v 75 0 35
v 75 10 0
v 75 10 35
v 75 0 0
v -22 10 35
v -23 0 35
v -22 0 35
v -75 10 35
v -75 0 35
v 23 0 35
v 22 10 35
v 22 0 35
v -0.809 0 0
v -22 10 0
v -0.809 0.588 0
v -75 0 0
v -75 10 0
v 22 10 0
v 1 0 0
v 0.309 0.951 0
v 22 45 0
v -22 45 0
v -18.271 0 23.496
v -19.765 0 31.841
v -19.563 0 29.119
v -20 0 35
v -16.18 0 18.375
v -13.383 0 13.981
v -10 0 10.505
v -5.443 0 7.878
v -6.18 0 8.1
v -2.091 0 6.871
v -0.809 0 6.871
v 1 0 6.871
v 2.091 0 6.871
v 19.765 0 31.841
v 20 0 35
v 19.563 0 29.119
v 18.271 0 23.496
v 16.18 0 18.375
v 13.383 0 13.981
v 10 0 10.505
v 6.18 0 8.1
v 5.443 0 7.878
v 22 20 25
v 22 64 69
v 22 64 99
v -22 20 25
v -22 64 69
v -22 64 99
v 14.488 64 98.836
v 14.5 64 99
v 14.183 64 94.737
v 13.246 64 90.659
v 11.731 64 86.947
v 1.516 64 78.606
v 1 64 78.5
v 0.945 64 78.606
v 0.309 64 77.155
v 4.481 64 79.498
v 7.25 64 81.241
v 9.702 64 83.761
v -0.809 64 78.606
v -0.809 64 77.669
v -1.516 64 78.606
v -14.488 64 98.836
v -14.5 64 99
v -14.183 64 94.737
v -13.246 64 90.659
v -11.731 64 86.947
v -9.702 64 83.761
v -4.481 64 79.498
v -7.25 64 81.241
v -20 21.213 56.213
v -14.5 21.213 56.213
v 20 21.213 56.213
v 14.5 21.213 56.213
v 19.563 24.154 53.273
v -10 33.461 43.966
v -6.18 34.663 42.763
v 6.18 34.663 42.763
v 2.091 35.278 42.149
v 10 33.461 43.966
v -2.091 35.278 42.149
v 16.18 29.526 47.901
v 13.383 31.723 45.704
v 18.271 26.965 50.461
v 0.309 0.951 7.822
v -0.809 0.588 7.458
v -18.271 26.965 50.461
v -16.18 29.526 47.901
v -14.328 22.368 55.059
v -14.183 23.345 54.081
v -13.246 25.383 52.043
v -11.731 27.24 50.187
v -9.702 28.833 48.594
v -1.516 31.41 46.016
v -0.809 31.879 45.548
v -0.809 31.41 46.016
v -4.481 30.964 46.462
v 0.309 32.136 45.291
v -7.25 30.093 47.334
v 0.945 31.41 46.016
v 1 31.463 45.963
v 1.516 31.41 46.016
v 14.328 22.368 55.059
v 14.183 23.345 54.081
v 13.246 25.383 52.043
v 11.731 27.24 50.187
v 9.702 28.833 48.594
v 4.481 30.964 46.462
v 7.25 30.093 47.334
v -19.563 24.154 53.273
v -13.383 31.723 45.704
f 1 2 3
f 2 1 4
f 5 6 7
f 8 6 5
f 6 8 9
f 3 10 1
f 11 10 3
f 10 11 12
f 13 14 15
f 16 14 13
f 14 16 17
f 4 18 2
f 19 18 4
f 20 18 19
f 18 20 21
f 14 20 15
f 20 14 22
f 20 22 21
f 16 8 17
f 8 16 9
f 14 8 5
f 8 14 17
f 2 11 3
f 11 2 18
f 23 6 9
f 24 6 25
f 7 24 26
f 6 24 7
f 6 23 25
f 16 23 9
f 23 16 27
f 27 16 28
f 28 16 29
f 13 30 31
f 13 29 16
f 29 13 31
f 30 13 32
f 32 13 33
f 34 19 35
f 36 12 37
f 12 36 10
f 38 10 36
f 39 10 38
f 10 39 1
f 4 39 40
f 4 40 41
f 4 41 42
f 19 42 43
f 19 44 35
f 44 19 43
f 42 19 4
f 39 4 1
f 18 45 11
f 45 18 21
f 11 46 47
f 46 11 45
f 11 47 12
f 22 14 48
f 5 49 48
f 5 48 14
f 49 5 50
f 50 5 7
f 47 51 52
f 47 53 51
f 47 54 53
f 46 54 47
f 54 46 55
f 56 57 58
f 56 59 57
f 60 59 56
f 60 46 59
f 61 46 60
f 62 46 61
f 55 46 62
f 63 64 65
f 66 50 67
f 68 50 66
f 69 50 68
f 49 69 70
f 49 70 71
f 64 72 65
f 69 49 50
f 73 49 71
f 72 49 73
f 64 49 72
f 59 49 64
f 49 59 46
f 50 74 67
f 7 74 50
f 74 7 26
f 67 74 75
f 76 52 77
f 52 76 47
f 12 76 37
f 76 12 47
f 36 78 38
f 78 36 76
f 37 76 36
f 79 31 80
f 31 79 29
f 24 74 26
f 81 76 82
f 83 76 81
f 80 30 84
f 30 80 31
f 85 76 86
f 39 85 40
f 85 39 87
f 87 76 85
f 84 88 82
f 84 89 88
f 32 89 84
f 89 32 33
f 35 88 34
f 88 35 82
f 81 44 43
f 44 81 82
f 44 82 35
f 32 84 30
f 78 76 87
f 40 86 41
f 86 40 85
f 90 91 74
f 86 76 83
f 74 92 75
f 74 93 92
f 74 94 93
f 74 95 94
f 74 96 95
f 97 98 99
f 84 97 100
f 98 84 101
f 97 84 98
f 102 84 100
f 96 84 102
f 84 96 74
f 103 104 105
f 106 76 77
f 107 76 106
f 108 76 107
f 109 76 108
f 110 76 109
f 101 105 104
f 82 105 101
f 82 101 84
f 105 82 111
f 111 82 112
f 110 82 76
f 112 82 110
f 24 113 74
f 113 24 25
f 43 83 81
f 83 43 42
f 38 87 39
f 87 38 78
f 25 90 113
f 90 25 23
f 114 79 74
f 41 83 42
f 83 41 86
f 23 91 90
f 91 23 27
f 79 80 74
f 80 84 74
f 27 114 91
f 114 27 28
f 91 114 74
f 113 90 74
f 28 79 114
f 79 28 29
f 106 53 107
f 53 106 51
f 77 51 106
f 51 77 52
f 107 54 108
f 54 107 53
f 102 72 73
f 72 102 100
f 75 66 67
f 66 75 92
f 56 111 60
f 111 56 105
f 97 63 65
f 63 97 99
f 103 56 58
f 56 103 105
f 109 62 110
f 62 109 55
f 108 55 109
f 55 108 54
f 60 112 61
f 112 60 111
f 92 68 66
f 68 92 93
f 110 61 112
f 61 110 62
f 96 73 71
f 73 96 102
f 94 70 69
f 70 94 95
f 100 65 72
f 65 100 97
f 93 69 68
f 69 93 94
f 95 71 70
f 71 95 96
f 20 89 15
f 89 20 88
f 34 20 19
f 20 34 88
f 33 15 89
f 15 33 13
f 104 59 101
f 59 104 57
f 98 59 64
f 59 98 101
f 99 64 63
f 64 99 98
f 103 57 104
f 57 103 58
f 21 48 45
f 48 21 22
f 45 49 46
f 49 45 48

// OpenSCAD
difference(){
    union(){
        translate([-75,0,0]) cube([150,10,35]);
        translate([-22,0,0]) cube([44,64,100]);
    }
    translate([0,0,35]) rotate([-45,0,0]) 
            translate([-23,-64,0]) cube([46,64,100]);
    translate([0,0,35]) rotate([-45,0,0]) 
            translate([0,0,-30]) cylinder(r=20,h=60);
    translate([0,0,35]) rotate([-45,0,0]) 
            translate([0,0,-25]) cylinder(r=14.5,h=120);
    translate([0,0,-1]) cylinder(r=1,h=20);
    translate([0,0,14.5]) rotate([-45,0,0]) cylinder(r=1,h=150);
    translate([-25,20,25]) rotate([-45,0,0]) cube([50,50,100]);
}
